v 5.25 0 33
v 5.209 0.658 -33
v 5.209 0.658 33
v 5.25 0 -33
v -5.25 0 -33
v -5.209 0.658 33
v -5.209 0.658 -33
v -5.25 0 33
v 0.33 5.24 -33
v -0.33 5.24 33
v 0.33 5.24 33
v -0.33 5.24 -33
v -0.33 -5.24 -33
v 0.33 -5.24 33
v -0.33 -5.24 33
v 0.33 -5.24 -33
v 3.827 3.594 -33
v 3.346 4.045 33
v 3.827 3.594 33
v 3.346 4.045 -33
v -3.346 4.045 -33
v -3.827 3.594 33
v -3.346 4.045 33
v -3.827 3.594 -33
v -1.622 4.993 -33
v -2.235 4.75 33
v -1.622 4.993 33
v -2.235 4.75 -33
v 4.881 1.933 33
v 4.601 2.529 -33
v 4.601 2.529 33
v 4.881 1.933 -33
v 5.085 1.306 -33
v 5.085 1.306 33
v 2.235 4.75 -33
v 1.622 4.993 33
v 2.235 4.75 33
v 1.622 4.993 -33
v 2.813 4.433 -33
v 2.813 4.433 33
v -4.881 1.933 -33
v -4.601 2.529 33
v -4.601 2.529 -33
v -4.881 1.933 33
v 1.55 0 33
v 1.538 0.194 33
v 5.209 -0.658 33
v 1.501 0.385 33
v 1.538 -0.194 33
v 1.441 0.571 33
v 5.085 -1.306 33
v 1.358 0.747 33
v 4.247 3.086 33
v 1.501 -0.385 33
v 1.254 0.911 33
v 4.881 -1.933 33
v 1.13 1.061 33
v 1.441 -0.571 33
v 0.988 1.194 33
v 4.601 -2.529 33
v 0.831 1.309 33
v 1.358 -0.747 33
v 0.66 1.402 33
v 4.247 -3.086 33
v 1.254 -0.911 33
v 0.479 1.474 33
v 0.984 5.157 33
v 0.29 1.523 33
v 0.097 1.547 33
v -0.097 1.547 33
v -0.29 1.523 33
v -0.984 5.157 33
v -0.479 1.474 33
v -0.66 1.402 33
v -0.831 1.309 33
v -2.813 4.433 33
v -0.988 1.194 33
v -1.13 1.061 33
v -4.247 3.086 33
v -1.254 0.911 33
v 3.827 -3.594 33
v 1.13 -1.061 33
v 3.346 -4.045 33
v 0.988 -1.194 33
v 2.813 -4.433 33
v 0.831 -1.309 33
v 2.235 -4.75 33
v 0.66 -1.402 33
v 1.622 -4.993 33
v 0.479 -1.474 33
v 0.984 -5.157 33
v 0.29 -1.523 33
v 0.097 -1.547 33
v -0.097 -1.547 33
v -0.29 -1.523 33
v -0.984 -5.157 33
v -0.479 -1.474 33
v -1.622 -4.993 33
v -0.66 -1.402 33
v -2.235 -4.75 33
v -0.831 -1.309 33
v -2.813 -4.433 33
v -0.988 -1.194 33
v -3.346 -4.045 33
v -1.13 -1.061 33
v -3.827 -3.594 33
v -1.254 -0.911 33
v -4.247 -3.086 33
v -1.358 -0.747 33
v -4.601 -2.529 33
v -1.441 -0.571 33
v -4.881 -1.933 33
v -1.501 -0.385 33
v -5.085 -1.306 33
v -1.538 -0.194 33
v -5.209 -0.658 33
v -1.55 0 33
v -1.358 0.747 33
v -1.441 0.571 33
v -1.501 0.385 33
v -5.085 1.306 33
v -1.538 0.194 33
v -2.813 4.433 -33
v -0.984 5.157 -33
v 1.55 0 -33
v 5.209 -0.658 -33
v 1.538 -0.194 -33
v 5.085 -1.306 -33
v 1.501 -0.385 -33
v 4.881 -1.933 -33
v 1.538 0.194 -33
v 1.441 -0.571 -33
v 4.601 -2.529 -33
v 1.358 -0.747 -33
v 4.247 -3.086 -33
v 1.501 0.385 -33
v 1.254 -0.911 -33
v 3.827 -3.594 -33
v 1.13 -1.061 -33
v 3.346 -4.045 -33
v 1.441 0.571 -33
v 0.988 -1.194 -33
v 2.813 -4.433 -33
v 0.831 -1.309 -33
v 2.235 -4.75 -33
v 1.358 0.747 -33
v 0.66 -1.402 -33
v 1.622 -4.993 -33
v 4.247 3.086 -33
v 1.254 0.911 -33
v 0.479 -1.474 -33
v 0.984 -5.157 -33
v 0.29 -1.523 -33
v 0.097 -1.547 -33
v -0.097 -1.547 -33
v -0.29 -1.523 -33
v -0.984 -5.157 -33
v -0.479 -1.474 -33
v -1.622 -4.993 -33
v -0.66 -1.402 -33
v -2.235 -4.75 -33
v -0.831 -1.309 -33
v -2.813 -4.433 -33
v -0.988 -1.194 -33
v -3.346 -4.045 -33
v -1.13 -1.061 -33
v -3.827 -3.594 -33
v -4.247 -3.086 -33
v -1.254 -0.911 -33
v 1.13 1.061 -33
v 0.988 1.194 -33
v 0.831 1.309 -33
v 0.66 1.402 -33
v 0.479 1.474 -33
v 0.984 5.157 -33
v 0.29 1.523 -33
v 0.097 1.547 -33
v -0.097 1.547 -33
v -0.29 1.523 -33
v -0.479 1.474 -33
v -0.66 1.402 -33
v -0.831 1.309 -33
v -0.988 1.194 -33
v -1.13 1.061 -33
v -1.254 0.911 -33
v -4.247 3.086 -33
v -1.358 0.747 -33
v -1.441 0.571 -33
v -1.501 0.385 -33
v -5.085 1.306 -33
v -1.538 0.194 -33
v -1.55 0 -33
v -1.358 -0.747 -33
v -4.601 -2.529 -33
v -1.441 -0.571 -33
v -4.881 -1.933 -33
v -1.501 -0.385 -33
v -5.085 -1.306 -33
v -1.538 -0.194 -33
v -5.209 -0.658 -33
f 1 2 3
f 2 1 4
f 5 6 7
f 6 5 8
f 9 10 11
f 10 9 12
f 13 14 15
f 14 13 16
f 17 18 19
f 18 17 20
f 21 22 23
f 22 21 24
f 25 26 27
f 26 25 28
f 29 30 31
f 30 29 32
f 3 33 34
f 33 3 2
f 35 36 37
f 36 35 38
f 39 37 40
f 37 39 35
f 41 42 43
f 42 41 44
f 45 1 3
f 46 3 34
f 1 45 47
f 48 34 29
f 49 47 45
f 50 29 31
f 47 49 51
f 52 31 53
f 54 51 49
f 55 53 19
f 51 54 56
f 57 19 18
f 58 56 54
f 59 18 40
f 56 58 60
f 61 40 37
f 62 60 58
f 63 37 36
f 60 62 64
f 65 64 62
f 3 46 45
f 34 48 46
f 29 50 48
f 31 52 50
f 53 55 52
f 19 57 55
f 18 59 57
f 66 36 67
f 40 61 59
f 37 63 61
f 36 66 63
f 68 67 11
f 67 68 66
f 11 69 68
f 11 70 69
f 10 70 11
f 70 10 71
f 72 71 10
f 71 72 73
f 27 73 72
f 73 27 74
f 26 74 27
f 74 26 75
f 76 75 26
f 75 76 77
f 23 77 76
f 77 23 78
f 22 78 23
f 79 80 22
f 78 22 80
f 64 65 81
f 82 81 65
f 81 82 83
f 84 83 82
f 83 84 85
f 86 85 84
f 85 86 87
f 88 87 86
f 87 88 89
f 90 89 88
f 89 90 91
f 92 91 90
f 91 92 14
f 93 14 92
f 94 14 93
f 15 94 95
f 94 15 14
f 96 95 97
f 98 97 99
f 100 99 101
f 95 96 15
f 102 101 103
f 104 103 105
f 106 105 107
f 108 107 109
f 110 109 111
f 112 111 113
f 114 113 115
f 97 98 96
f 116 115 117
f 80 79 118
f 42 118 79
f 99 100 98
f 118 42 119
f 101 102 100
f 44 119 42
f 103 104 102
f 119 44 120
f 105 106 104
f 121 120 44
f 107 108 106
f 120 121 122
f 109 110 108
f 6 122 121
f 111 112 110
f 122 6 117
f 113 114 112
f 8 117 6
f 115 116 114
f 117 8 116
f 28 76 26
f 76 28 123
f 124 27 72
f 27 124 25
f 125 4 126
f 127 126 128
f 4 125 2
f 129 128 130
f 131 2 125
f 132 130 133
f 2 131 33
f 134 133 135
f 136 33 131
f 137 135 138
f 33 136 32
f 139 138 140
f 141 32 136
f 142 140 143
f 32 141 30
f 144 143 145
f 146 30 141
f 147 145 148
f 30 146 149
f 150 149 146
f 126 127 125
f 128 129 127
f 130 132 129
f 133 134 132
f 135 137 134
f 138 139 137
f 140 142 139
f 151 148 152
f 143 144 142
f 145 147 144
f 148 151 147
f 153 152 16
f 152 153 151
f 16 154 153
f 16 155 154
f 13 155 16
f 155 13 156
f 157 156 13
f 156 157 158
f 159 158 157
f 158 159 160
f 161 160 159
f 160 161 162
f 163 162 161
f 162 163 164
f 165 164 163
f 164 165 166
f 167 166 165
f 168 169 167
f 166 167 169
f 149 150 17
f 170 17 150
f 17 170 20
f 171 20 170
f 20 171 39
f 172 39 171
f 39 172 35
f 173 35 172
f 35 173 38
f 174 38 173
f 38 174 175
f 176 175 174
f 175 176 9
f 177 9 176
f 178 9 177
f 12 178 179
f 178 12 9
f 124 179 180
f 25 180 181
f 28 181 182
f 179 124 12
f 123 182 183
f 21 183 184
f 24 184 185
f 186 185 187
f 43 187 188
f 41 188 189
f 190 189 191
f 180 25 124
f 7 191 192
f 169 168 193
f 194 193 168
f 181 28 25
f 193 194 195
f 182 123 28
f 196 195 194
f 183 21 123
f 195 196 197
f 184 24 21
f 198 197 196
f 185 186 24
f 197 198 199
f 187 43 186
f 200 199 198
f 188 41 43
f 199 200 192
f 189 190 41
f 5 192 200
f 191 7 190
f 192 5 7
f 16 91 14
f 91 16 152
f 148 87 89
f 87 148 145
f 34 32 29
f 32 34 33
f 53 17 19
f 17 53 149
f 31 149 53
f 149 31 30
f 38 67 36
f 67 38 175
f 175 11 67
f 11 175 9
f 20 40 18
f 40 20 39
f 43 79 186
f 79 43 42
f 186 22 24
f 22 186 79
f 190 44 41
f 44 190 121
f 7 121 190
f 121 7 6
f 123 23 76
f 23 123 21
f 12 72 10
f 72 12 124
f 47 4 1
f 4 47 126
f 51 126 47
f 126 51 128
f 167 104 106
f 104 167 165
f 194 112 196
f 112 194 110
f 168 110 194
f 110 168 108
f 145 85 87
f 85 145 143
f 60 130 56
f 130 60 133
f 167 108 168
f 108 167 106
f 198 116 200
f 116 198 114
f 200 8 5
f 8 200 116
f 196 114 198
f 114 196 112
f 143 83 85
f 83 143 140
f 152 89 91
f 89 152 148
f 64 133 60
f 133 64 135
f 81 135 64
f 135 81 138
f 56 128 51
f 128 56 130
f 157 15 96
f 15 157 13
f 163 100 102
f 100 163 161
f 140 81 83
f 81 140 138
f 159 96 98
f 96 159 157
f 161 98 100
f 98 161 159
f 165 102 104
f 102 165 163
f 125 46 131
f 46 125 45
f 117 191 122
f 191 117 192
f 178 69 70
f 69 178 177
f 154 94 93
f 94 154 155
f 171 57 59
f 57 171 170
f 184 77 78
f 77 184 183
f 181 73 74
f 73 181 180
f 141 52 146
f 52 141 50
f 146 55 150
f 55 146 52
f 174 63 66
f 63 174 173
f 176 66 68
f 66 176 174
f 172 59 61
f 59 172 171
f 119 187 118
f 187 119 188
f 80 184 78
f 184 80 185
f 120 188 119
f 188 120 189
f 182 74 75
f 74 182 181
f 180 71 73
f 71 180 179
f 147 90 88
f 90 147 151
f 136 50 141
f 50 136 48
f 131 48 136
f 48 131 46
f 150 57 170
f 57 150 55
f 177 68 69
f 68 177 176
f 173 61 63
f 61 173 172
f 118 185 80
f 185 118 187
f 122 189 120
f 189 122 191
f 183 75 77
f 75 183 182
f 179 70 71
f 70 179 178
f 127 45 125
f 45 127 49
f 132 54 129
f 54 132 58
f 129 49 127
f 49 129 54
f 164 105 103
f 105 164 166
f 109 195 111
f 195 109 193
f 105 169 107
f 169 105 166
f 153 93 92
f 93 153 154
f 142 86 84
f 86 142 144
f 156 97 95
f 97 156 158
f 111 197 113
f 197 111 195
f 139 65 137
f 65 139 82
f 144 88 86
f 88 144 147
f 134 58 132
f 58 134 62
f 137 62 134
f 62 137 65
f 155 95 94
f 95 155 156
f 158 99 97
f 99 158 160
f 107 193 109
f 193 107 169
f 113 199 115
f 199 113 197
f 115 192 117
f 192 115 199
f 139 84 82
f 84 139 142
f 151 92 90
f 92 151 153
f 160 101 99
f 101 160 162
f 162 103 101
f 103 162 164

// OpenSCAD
$fn = 50;


difference() {
	union() {
		translate(v = [0, 0, -33.0000000000]) {
			cylinder(h = 66, r = 5.2500000000);
		}
	}
	union() {
		translate(v = [0, 0, -100.0000000000]) {
			cylinder(h = 200, r = 1.5500000000);
		}
	}
}
